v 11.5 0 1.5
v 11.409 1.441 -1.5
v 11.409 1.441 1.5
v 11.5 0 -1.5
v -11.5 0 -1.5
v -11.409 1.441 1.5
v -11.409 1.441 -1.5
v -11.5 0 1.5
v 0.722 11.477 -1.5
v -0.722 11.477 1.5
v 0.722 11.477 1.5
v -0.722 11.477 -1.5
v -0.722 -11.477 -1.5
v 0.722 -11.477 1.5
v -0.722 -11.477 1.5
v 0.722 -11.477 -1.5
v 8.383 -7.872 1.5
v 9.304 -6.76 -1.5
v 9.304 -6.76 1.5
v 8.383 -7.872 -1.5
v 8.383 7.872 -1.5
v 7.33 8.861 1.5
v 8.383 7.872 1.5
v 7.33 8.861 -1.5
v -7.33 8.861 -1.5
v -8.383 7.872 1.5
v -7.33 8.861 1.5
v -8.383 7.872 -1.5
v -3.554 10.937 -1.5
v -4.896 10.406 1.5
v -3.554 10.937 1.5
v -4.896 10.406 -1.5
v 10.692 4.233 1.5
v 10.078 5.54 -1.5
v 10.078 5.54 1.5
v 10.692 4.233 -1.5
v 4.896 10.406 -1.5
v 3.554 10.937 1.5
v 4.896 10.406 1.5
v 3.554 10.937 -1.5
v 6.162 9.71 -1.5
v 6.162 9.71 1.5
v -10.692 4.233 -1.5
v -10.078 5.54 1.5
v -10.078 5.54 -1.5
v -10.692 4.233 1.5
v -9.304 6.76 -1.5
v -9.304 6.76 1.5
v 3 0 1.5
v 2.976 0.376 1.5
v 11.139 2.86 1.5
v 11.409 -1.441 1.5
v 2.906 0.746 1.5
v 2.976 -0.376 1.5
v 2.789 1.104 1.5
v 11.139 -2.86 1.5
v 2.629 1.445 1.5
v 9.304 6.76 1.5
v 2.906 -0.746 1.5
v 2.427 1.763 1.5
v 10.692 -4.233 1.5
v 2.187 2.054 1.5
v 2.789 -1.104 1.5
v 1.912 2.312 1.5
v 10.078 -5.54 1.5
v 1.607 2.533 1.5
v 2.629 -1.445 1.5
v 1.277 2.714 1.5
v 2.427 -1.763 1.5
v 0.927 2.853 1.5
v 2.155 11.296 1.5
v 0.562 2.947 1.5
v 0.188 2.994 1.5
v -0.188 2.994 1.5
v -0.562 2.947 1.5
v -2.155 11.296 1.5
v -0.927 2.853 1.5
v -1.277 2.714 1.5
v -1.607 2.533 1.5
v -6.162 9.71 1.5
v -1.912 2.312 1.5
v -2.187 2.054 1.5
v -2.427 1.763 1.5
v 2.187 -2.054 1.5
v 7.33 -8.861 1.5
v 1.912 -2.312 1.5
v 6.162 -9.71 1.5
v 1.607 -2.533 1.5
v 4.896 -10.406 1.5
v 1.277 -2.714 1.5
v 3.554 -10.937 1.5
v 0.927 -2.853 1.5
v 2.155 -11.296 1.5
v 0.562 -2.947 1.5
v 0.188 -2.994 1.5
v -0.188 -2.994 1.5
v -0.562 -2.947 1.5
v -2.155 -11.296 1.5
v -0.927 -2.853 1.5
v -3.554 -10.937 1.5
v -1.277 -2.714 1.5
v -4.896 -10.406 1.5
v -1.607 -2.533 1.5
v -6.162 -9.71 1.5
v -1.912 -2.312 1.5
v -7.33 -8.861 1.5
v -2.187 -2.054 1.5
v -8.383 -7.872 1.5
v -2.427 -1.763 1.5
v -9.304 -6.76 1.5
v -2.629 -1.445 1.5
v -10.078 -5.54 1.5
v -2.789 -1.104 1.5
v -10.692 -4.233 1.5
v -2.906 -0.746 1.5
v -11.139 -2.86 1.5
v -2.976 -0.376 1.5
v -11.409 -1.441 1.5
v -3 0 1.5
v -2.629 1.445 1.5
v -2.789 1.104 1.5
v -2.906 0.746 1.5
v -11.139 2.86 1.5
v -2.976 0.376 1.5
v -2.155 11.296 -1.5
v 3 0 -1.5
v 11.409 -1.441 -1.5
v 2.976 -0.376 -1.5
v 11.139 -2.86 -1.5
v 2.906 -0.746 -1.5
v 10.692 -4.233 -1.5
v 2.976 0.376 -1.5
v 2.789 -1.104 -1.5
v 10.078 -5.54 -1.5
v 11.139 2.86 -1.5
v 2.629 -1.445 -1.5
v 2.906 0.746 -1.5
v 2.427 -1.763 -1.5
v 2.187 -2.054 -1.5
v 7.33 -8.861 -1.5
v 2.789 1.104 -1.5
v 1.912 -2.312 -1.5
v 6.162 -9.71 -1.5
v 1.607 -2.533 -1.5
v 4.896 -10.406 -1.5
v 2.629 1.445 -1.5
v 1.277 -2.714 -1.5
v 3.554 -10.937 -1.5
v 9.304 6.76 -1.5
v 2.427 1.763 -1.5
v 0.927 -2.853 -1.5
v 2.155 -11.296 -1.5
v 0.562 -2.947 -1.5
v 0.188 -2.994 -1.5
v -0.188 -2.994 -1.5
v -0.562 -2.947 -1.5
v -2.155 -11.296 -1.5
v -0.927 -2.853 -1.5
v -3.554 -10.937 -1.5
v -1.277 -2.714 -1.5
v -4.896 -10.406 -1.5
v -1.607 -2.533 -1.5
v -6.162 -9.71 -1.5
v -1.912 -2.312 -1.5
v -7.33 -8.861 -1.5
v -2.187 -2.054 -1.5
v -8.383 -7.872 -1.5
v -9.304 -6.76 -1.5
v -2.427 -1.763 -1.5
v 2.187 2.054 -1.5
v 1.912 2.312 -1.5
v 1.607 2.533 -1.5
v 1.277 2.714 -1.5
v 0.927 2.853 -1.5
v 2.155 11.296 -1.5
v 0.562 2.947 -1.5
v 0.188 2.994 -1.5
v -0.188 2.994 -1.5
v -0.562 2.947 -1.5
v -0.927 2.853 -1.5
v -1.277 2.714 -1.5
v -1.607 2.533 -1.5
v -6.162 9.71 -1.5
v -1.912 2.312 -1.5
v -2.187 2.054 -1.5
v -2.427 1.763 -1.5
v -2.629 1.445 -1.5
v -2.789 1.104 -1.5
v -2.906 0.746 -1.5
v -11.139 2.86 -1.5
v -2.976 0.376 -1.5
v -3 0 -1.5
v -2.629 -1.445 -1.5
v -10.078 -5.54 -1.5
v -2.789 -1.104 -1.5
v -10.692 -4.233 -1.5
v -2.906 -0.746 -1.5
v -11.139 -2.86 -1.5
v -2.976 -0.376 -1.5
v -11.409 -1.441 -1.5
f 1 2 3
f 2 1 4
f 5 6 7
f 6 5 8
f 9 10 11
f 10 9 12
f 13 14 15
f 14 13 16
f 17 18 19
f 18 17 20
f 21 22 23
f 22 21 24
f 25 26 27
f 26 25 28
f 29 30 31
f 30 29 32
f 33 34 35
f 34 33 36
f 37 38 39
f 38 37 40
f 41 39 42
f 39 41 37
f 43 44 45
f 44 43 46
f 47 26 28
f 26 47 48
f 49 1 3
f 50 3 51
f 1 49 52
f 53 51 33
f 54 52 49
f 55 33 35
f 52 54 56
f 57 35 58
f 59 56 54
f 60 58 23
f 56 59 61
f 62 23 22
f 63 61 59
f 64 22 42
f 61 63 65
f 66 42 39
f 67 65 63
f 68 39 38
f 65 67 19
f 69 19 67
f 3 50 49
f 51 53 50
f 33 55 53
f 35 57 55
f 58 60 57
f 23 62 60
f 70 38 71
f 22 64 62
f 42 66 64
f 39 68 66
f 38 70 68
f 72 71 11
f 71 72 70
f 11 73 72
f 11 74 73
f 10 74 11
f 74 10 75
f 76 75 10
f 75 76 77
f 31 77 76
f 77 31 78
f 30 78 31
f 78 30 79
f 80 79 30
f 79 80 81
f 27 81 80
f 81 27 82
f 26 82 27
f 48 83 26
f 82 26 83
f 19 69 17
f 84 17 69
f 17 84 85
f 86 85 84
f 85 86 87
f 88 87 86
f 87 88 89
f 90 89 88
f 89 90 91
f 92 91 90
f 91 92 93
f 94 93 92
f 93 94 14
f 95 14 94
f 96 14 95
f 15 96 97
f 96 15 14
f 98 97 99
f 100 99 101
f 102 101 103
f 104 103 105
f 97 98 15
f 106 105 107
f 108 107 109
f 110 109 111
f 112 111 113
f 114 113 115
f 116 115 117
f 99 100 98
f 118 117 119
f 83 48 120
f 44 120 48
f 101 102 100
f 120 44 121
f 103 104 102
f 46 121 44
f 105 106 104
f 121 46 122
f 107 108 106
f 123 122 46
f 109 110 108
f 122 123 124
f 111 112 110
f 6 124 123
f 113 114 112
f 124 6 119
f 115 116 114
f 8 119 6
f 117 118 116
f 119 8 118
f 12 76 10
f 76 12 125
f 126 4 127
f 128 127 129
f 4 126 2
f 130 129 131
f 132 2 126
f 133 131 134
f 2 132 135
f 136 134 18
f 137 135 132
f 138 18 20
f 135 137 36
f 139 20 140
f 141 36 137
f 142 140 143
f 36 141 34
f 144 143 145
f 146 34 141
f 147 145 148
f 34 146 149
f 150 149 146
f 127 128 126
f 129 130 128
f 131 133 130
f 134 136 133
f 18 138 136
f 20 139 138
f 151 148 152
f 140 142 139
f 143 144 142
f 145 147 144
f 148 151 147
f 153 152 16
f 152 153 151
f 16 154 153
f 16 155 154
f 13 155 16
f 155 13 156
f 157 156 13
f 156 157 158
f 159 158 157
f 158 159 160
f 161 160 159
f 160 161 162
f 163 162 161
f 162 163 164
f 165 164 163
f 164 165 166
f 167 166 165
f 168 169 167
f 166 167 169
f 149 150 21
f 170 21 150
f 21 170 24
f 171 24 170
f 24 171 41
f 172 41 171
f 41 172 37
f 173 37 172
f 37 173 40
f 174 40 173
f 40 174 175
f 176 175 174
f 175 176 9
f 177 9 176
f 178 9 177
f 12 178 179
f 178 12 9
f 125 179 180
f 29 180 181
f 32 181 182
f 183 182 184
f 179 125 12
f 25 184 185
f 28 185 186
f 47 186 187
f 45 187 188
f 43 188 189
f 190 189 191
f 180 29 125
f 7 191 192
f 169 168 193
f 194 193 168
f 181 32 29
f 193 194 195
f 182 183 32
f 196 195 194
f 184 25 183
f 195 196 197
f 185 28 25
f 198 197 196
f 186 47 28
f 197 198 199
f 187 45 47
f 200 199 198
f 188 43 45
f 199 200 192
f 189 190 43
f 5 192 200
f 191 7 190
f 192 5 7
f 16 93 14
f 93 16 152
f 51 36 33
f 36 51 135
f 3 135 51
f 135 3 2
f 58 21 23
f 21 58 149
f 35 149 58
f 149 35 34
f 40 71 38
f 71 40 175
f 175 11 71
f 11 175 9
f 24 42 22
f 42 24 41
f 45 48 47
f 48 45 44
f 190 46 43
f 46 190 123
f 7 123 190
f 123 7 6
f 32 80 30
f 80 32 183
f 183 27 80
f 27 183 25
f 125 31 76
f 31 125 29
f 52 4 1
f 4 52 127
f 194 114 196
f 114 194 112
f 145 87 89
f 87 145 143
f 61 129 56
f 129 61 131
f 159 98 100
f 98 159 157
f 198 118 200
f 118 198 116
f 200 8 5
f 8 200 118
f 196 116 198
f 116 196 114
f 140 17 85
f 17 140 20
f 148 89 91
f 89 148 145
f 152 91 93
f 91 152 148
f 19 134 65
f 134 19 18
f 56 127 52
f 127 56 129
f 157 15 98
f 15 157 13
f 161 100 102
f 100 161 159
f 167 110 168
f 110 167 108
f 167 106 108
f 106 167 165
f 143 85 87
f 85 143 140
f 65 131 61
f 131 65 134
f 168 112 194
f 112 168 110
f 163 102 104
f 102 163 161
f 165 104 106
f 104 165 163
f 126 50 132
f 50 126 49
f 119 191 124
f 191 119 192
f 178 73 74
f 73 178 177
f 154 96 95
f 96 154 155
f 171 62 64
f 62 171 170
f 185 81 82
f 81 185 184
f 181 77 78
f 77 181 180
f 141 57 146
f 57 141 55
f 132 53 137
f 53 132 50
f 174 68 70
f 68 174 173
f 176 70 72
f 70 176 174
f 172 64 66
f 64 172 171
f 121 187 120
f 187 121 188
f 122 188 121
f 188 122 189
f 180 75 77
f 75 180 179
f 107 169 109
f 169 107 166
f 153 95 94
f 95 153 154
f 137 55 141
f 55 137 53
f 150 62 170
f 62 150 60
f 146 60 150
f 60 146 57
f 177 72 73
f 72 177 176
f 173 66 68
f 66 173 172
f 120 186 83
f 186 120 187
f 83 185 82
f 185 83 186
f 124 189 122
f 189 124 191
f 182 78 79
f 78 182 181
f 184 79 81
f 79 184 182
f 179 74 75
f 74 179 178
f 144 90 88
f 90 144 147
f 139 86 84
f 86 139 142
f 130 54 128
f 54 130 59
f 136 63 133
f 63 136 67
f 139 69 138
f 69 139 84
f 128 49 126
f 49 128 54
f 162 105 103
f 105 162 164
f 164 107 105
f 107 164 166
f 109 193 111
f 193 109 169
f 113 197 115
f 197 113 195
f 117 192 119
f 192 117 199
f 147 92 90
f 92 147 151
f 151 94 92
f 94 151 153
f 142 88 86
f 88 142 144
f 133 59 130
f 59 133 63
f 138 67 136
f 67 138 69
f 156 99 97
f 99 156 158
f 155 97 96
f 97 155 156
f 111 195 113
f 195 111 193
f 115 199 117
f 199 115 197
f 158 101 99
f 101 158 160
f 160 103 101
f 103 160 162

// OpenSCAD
$fn = 50;


difference() {
	union() {
		translate(v = [0, 0, -1.5000000000]) {
			cylinder(h = 3, r = 11.5000000000);
		}
	}
	union() {
		translate(v = [0, 0, -100.0000000000]) {
			cylinder(h = 200, r = 3);
		}
	}
}
